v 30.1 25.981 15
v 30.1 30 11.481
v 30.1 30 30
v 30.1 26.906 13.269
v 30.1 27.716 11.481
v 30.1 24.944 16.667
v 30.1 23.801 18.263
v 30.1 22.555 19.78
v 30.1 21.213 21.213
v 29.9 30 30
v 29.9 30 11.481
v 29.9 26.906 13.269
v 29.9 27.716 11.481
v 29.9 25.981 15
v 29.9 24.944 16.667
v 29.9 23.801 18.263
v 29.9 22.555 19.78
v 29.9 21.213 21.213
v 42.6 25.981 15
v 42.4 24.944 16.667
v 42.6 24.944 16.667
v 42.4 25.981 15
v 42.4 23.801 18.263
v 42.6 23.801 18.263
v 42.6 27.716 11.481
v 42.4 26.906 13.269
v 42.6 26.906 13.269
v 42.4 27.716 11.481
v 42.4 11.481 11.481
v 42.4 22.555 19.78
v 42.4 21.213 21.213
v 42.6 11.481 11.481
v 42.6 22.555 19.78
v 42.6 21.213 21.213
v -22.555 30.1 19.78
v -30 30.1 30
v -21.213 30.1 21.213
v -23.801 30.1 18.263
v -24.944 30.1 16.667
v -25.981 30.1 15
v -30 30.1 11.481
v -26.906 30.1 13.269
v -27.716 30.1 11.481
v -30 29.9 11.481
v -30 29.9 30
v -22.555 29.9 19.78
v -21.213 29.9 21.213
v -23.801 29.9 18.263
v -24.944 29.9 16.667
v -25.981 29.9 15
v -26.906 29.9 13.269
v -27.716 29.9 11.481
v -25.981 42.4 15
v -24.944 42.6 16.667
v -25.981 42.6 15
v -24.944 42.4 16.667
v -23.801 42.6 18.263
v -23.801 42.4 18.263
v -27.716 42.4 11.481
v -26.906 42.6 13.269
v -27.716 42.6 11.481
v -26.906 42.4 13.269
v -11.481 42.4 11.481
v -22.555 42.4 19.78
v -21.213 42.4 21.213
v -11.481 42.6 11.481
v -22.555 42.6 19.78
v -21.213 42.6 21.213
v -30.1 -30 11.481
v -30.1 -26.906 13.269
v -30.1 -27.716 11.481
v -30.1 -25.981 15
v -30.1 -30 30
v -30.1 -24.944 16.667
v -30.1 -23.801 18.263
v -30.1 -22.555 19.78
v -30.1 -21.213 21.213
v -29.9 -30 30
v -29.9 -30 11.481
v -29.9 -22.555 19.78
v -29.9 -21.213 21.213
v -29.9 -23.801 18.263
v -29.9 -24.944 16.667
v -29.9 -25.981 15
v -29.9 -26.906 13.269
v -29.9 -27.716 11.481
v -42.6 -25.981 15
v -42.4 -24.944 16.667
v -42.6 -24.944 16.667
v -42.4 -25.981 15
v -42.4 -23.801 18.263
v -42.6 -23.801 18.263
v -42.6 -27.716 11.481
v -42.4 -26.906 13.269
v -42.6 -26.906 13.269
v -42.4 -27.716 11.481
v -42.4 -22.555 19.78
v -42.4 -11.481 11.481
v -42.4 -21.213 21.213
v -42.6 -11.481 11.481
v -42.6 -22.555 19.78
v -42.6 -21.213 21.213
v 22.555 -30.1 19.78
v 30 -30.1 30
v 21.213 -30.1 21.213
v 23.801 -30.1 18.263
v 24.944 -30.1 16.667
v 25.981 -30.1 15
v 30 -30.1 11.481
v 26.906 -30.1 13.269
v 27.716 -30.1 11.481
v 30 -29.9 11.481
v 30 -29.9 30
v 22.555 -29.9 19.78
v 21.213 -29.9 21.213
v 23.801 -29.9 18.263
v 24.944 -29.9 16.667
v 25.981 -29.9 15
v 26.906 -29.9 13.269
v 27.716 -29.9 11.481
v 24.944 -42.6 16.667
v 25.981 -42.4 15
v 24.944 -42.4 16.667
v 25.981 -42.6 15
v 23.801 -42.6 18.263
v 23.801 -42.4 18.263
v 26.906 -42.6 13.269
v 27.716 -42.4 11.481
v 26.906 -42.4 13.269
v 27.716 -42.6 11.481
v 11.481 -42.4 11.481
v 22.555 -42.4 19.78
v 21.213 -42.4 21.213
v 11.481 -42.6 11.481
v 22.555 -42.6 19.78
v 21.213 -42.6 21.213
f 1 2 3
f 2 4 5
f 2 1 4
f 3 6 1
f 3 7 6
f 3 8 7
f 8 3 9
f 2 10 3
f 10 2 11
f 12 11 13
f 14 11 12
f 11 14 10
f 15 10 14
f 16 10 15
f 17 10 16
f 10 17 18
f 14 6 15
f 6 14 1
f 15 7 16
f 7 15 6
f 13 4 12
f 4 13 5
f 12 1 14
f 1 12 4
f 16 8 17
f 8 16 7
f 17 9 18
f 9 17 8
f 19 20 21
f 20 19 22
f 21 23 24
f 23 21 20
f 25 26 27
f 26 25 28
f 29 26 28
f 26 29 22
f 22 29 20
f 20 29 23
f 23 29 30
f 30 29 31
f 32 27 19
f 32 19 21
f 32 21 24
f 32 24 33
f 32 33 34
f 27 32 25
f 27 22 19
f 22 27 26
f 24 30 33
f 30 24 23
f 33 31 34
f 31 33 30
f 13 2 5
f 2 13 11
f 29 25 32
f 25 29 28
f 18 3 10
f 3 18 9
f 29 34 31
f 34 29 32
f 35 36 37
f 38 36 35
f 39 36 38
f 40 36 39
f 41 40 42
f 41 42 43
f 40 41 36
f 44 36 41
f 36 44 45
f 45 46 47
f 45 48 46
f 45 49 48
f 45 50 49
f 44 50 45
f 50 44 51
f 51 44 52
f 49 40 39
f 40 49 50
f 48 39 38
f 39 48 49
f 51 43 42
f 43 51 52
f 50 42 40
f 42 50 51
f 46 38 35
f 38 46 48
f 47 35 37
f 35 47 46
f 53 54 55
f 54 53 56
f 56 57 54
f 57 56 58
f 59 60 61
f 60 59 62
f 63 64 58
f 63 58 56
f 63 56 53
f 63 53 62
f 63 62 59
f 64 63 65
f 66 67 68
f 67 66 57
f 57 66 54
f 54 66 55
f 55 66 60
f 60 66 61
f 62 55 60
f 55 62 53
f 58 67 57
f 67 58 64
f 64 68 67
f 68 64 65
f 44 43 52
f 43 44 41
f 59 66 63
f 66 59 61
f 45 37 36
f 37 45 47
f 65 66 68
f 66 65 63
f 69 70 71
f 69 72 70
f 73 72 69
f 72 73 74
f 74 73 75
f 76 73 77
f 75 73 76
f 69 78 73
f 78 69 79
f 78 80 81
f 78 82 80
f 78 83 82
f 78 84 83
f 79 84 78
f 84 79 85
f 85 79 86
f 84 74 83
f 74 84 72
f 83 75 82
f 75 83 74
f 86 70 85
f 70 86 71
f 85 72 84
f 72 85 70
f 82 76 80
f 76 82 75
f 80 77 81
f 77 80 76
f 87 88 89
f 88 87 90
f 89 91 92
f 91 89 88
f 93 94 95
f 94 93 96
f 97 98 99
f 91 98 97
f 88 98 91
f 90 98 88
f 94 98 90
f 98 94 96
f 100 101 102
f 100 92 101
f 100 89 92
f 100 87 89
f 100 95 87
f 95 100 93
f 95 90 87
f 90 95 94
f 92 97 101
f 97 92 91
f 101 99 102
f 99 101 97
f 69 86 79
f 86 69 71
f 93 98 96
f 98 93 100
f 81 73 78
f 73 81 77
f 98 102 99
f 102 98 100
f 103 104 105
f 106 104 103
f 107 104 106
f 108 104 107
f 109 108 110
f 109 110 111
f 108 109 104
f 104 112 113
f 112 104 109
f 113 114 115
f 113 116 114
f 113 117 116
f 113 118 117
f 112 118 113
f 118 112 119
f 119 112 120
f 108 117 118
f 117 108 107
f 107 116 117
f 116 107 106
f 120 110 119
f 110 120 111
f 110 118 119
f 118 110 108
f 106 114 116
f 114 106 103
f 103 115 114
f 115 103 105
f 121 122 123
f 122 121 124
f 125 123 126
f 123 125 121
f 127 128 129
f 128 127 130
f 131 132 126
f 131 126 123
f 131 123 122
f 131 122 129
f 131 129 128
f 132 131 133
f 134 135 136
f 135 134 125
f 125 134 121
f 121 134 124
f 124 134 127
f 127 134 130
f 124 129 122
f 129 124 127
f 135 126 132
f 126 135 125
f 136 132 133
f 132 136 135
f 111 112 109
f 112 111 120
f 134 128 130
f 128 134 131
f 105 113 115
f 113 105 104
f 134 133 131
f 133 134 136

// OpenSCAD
// file: def.scad
round_radius = 0.6;
sticker_margin = 1.2;
sticker_round_radius = 0.4;
cube_size = 60;
disk_height = 12.5;
disk_radius = cube_size / 2;
base_size = cube_size / 2 / sqrt(10 + 7 * sqrt(2));
cut1_dis = base_size * (1 + sqrt(2) / 2);
cut2_dis = cube_size / 2;
inf = cube_size * 10;

module _cube() {
    cube([cube_size - round_radius * 2, cube_size - round_radius * 2, cube_size - round_radius * 2], center = true);
}

module _disk() {
    translate([0, 0, cube_size / 2 + disk_height / 2])
        cylinder(r = disk_radius - round_radius, h = disk_height - round_radius * 2, center = true, $fn = 96);
}

module _int_cut1() {
    translate([-inf, -inf, cut1_dis + round_radius])
        cube([inf * 2, inf * 2, inf]);
}

module _dif_cut1() {
    translate([-inf, -inf, cut1_dis - round_radius])
        cube([inf * 2, inf * 2, inf]);
}

module _sticker_int_cut1() {
    translate([-inf, -inf, cut1_dis + sticker_margin])
        cube([inf * 2, inf * 2, inf]);
}

module _sticker_dif_cut1() {
    translate([-inf, -inf, cut1_dis - sticker_margin])
        cube([inf * 2, inf * 2, inf]);
}

module _int_cut2() {
    translate([-inf, -inf, cut2_dis + round_radius])
        cube([inf * 2, inf * 2, inf]);
}

module _dif_cut2() {
    translate([-inf, -inf, cut2_dis - round_radius])
        cube([inf * 2, inf * 2, inf]);
}

module _sticker_int_cut2() {
    translate([-inf, -inf, cut2_dis + sticker_margin])
        cube([inf * 2, inf * 2, inf]);
}

module _sticker_dif_cut2() {
    translate([-inf, -inf, cut2_dis - sticker_margin])
        cube([inf * 2, inf * 2, inf]);
}

module _sticker_cube() {
    translate([-cube_size / 2 + sticker_margin, -cube_size / 2 + sticker_margin, cube_size / 2 - 0.05])
        cube([cube_size - sticker_margin * 2, cube_size - sticker_margin * 2, 0.1]);
}

module _sticker_disk() {
    translate([0, 0, cube_size / 2 + disk_height - 0.05])
        cylinder(r = disk_radius - sticker_margin, h = 0.1, center = true, $fn = 96);
}
// main file
include <def.scad>

module selector_2_ccw() {
    difference() {
        rotate([0, 90, 0]) {
            difference() {
                translate([-cube_size / 2, -cube_size / 2, cube_size / 2 - 0.1])
                    cube([cube_size, cube_size, 0.2]);
                cylinder(r = disk_radius, h = inf * 2, center = true, $fn = 96);
            }
            translate([0, 0, cube_size / 2 + disk_height])
                cylinder(r = disk_radius, h = 0.2, center = true, $fn = 96);
        }
        rotate([180, 0, 0])
            translate([-inf, -inf, -cut1_dis])
                cube([inf * 2, inf * 2, inf]);
        rotate([45, 0, 0])
            translate([-inf, -inf, 0])
                cube([inf * 2, inf * 2, inf]);
    }
}

for (deg = [0 : 90 : 270])
    rotate([0, 0, deg])
        selector_2_ccw();
